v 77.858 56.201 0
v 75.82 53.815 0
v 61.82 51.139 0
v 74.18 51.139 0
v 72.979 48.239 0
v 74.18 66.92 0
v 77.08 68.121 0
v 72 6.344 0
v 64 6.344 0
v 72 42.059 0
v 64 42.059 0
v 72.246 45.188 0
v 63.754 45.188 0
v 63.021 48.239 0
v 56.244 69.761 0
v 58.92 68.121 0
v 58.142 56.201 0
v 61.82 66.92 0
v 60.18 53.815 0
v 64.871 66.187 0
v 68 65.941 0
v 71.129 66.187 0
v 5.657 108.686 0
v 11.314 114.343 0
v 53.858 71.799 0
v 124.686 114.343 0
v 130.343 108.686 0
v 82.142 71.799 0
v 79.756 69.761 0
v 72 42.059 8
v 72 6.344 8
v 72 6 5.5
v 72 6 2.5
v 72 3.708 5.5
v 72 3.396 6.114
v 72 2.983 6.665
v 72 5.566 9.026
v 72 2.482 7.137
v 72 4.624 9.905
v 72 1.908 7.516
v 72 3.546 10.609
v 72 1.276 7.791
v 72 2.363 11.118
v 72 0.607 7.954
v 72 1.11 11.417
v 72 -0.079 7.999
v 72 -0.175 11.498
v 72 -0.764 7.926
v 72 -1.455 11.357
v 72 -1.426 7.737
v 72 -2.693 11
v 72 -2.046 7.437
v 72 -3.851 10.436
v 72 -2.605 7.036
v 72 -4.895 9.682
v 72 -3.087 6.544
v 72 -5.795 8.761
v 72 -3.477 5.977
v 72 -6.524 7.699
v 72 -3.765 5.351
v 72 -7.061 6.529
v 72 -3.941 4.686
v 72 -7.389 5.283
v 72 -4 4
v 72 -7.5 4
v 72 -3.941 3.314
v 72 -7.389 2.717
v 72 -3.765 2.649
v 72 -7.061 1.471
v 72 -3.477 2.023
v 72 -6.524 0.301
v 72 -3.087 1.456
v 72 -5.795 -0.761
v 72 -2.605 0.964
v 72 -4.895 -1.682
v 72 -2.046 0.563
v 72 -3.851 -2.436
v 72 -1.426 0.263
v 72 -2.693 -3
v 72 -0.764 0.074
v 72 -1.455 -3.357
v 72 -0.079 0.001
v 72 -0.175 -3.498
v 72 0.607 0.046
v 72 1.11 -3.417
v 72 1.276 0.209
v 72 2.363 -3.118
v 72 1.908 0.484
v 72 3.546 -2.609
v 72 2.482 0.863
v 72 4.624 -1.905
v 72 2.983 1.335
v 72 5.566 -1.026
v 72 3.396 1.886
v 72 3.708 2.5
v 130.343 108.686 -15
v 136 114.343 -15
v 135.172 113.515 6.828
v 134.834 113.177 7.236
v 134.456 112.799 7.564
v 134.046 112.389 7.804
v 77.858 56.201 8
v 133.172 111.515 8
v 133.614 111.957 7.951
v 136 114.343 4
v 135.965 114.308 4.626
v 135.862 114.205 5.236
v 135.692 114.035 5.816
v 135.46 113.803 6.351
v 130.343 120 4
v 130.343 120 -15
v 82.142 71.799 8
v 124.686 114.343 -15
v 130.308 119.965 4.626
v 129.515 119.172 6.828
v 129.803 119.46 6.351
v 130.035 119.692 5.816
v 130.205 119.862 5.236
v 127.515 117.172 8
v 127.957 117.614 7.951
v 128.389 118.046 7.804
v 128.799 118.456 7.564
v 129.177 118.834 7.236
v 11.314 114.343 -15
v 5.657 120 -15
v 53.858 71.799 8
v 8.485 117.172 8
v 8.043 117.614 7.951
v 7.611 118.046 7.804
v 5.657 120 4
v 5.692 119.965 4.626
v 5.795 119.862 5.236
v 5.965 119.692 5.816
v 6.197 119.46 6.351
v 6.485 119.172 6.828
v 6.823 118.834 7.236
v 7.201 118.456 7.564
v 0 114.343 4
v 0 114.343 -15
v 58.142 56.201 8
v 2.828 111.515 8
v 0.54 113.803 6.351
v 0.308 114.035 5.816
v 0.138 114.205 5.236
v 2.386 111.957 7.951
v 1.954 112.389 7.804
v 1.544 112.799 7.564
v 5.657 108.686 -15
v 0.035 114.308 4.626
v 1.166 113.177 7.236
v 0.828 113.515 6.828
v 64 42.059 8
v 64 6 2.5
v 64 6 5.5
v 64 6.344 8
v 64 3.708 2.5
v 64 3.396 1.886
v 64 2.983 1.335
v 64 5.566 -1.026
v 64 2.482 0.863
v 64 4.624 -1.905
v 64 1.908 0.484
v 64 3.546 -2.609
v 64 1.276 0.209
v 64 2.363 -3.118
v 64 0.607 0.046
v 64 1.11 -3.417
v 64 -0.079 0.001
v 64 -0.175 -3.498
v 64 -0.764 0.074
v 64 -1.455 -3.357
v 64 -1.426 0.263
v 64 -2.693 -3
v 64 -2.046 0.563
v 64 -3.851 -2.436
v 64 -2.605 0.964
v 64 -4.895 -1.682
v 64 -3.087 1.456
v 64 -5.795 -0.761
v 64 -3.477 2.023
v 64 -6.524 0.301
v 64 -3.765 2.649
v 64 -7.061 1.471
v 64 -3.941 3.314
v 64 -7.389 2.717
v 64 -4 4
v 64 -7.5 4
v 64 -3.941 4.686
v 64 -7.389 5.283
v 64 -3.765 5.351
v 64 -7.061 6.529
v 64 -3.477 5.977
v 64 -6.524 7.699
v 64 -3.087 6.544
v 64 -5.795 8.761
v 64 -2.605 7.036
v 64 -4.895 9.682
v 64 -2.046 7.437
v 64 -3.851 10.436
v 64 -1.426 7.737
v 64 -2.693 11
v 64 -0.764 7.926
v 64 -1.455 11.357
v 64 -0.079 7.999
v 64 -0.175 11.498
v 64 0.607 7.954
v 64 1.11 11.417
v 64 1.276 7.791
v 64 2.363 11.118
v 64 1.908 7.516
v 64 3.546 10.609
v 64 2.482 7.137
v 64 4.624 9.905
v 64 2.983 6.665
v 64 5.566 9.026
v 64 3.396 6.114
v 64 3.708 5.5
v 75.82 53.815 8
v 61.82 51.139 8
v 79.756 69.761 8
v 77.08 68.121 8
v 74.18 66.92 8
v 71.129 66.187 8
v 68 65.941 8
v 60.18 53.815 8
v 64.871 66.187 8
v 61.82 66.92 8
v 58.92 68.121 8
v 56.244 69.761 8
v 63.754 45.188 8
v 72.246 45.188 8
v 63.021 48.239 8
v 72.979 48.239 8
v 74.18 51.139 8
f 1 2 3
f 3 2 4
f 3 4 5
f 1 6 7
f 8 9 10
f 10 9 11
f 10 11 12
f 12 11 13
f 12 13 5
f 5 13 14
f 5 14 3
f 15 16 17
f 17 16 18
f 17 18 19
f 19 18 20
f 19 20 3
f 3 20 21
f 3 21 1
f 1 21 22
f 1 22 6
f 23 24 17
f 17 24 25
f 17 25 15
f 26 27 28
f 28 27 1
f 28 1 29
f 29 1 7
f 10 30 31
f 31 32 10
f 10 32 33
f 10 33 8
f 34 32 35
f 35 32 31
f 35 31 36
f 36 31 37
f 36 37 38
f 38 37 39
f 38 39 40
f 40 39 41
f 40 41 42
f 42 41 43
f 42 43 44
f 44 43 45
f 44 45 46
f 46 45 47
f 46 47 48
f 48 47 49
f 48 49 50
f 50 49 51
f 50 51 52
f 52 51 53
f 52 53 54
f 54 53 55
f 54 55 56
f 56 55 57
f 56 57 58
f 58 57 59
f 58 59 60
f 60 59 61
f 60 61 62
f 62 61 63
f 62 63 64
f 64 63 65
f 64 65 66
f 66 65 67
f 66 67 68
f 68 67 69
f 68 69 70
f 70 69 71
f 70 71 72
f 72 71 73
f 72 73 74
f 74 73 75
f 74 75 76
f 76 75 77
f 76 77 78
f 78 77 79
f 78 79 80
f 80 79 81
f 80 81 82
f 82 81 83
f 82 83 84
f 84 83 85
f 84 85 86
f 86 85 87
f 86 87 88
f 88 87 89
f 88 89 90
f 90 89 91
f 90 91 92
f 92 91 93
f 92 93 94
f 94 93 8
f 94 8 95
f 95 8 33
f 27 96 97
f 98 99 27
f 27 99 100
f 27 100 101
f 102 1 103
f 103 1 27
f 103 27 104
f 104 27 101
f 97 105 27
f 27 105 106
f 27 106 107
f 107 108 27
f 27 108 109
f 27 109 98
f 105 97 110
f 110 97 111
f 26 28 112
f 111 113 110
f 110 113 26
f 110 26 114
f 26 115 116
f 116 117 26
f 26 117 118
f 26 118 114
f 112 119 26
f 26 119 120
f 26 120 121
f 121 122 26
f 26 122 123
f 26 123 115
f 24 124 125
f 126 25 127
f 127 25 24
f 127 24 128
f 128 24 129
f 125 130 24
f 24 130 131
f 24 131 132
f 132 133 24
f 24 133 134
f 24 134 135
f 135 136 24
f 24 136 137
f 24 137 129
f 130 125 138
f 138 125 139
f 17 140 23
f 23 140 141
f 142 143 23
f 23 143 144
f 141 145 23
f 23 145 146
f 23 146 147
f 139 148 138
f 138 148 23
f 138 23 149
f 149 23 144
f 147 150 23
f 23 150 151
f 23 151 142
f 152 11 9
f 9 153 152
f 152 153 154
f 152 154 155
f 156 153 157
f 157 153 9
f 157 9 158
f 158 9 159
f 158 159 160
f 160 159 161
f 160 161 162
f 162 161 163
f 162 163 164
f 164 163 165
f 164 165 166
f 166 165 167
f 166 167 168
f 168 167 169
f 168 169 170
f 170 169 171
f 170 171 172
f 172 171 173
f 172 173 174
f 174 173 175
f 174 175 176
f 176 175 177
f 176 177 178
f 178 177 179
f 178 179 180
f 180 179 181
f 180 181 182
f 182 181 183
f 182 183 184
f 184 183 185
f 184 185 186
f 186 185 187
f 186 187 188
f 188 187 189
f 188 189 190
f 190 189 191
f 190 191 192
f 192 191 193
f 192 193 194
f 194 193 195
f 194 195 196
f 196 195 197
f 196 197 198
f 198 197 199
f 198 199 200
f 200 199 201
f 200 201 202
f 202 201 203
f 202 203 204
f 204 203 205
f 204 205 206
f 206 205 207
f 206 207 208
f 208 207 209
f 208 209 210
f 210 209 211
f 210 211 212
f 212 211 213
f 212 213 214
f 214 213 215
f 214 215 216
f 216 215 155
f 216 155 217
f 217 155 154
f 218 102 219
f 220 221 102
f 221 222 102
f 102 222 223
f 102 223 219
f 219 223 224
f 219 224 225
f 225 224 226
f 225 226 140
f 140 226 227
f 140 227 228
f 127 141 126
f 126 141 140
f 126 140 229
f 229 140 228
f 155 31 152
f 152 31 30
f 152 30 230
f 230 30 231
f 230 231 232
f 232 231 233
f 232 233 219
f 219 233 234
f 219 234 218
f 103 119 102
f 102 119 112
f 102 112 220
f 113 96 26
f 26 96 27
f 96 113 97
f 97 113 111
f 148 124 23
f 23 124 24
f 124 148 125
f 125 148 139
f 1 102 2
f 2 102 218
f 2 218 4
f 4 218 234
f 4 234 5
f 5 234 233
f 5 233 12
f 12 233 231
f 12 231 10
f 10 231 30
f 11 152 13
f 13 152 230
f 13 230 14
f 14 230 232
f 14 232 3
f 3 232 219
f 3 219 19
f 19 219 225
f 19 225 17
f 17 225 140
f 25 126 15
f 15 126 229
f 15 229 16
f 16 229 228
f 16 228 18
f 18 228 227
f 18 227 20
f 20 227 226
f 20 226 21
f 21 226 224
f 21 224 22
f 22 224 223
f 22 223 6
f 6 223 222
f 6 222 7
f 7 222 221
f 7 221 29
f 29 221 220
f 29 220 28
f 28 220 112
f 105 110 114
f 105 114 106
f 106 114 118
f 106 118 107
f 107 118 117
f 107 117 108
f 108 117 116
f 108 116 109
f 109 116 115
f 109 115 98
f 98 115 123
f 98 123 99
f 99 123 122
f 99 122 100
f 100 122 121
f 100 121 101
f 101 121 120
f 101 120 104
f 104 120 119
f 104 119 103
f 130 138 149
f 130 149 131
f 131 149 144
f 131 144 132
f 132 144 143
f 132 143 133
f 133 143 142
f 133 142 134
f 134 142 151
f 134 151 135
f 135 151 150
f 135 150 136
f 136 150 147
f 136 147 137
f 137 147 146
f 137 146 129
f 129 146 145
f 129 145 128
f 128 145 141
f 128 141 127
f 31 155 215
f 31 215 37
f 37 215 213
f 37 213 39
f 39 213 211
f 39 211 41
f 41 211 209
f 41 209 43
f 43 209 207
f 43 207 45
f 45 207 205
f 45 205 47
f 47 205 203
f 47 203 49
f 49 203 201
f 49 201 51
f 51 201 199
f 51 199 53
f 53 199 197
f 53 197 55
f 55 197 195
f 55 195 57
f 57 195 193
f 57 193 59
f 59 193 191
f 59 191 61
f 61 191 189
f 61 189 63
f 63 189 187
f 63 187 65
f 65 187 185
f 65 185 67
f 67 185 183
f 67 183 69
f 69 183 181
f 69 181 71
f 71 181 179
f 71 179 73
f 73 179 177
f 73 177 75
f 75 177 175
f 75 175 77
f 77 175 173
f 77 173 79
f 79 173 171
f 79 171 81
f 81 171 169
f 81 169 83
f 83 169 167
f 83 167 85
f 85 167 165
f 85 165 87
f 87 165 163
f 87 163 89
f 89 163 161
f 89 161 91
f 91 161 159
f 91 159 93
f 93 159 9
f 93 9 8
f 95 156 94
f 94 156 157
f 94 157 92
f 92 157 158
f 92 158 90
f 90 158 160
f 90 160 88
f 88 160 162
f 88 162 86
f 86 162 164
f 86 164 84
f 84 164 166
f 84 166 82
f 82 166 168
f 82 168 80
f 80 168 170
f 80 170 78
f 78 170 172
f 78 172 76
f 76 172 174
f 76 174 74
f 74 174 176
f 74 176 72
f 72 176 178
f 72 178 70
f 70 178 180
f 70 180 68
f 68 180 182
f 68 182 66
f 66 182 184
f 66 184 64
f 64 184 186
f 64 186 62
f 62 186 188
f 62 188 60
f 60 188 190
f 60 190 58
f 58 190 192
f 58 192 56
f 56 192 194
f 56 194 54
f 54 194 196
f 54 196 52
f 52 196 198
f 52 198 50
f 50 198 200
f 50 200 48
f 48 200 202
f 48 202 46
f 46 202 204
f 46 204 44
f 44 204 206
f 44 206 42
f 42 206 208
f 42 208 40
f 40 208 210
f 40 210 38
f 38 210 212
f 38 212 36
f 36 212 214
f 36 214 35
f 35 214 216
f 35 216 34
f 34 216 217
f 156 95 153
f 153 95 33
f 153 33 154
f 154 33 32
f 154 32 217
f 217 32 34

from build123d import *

# Parameters (mm, degrees)
BOSS_EXTRU_1_DEPTH      = 8
BOSS_EXTRU_2_DEPTH      = 15
CONG_1_R                = 20
CONG_2_R                = 4
ESQUISSE3_R             = 7.5
BOSS_EXTRU_3_DEPTH      = 8
ENL_V_MAT_EXTRU_1_DEPTH = 141.744449269


with BuildPart() as part:
    # Esquisse1 → Boss.-Extru.1 (new body)
    with BuildSketch(Plane.XY):
        Polygon((64, 0), (64, 50.343145751), (0, 114.343145751), (5.656854249, 120), (68, 57.656854249), (130.343145751, 120), (136, 114.343145751), (72, 50.343145751), (72, 0), align=None)
    extrude(amount=BOSS_EXTRU_1_DEPTH)

    # Esquisse2 → Boss.-Extru.2 (add)
    with BuildSketch(Plane(origin=(0, 0, 0), x_dir=(-1, 0, 0), z_dir=(0, 0, -1))):
        Polygon((-130.343145751, 108.686291501), (-136, 114.343145751), (-130.343145751, 120), (-124.686291501, 114.343145751), align=None)
        Polygon((0, 114.343145751), (-5.656854249, 108.686291501), (-11.313708499, 114.343145751), (-5.656854249, 120), align=None)
    extrude(amount=BOSS_EXTRU_2_DEPTH)

    # Congé1
    cong_1_edges = [part.edges().sort_by_distance(p)[0] for p in [
        (64, 50.343145751, 4),
        (68, 57.656854249, 4),
        (72, 50.343145751, 4),
    ]]
    fillet(cong_1_edges, radius=CONG_1_R)

    # Congé2
    cong_2_edges = [part.edges().sort_by_distance(p)[0] for p in [
        (133.171572875, 117.171572875, 8),
        (2.828427125, 117.171572875, 8),
    ]]
    fillet(cong_2_edges, radius=CONG_2_R)

    # Esquisse3 → Boss.-Extru.3 (add)
    with BuildSketch(Plane.ZY.offset(-64)):
        with Locations((4, 0)):
            Circle(ESQUISSE3_R)
    extrude(amount=-BOSS_EXTRU_3_DEPTH)

    # Esquisse4 → Enlèv. mat.-Extru.1 (cut, through all)
    with BuildSketch(Plane.ZY.offset(-64)):
        with BuildLine():
            Line((2.5, 3.708099244), (2.5, 6))
            Line((2.5, 6), (5.5, 6))
            Line((5.5, 6), (5.5, 3.708099244))
            ThreePointArc((5.5, 3.708099244), (4, -4), (2.5, 3.708099244))
        make_face()
    extrude(amount=-ENL_V_MAT_EXTRU_1_DEPTH, mode=Mode.SUBTRACT)


solid = part.part
